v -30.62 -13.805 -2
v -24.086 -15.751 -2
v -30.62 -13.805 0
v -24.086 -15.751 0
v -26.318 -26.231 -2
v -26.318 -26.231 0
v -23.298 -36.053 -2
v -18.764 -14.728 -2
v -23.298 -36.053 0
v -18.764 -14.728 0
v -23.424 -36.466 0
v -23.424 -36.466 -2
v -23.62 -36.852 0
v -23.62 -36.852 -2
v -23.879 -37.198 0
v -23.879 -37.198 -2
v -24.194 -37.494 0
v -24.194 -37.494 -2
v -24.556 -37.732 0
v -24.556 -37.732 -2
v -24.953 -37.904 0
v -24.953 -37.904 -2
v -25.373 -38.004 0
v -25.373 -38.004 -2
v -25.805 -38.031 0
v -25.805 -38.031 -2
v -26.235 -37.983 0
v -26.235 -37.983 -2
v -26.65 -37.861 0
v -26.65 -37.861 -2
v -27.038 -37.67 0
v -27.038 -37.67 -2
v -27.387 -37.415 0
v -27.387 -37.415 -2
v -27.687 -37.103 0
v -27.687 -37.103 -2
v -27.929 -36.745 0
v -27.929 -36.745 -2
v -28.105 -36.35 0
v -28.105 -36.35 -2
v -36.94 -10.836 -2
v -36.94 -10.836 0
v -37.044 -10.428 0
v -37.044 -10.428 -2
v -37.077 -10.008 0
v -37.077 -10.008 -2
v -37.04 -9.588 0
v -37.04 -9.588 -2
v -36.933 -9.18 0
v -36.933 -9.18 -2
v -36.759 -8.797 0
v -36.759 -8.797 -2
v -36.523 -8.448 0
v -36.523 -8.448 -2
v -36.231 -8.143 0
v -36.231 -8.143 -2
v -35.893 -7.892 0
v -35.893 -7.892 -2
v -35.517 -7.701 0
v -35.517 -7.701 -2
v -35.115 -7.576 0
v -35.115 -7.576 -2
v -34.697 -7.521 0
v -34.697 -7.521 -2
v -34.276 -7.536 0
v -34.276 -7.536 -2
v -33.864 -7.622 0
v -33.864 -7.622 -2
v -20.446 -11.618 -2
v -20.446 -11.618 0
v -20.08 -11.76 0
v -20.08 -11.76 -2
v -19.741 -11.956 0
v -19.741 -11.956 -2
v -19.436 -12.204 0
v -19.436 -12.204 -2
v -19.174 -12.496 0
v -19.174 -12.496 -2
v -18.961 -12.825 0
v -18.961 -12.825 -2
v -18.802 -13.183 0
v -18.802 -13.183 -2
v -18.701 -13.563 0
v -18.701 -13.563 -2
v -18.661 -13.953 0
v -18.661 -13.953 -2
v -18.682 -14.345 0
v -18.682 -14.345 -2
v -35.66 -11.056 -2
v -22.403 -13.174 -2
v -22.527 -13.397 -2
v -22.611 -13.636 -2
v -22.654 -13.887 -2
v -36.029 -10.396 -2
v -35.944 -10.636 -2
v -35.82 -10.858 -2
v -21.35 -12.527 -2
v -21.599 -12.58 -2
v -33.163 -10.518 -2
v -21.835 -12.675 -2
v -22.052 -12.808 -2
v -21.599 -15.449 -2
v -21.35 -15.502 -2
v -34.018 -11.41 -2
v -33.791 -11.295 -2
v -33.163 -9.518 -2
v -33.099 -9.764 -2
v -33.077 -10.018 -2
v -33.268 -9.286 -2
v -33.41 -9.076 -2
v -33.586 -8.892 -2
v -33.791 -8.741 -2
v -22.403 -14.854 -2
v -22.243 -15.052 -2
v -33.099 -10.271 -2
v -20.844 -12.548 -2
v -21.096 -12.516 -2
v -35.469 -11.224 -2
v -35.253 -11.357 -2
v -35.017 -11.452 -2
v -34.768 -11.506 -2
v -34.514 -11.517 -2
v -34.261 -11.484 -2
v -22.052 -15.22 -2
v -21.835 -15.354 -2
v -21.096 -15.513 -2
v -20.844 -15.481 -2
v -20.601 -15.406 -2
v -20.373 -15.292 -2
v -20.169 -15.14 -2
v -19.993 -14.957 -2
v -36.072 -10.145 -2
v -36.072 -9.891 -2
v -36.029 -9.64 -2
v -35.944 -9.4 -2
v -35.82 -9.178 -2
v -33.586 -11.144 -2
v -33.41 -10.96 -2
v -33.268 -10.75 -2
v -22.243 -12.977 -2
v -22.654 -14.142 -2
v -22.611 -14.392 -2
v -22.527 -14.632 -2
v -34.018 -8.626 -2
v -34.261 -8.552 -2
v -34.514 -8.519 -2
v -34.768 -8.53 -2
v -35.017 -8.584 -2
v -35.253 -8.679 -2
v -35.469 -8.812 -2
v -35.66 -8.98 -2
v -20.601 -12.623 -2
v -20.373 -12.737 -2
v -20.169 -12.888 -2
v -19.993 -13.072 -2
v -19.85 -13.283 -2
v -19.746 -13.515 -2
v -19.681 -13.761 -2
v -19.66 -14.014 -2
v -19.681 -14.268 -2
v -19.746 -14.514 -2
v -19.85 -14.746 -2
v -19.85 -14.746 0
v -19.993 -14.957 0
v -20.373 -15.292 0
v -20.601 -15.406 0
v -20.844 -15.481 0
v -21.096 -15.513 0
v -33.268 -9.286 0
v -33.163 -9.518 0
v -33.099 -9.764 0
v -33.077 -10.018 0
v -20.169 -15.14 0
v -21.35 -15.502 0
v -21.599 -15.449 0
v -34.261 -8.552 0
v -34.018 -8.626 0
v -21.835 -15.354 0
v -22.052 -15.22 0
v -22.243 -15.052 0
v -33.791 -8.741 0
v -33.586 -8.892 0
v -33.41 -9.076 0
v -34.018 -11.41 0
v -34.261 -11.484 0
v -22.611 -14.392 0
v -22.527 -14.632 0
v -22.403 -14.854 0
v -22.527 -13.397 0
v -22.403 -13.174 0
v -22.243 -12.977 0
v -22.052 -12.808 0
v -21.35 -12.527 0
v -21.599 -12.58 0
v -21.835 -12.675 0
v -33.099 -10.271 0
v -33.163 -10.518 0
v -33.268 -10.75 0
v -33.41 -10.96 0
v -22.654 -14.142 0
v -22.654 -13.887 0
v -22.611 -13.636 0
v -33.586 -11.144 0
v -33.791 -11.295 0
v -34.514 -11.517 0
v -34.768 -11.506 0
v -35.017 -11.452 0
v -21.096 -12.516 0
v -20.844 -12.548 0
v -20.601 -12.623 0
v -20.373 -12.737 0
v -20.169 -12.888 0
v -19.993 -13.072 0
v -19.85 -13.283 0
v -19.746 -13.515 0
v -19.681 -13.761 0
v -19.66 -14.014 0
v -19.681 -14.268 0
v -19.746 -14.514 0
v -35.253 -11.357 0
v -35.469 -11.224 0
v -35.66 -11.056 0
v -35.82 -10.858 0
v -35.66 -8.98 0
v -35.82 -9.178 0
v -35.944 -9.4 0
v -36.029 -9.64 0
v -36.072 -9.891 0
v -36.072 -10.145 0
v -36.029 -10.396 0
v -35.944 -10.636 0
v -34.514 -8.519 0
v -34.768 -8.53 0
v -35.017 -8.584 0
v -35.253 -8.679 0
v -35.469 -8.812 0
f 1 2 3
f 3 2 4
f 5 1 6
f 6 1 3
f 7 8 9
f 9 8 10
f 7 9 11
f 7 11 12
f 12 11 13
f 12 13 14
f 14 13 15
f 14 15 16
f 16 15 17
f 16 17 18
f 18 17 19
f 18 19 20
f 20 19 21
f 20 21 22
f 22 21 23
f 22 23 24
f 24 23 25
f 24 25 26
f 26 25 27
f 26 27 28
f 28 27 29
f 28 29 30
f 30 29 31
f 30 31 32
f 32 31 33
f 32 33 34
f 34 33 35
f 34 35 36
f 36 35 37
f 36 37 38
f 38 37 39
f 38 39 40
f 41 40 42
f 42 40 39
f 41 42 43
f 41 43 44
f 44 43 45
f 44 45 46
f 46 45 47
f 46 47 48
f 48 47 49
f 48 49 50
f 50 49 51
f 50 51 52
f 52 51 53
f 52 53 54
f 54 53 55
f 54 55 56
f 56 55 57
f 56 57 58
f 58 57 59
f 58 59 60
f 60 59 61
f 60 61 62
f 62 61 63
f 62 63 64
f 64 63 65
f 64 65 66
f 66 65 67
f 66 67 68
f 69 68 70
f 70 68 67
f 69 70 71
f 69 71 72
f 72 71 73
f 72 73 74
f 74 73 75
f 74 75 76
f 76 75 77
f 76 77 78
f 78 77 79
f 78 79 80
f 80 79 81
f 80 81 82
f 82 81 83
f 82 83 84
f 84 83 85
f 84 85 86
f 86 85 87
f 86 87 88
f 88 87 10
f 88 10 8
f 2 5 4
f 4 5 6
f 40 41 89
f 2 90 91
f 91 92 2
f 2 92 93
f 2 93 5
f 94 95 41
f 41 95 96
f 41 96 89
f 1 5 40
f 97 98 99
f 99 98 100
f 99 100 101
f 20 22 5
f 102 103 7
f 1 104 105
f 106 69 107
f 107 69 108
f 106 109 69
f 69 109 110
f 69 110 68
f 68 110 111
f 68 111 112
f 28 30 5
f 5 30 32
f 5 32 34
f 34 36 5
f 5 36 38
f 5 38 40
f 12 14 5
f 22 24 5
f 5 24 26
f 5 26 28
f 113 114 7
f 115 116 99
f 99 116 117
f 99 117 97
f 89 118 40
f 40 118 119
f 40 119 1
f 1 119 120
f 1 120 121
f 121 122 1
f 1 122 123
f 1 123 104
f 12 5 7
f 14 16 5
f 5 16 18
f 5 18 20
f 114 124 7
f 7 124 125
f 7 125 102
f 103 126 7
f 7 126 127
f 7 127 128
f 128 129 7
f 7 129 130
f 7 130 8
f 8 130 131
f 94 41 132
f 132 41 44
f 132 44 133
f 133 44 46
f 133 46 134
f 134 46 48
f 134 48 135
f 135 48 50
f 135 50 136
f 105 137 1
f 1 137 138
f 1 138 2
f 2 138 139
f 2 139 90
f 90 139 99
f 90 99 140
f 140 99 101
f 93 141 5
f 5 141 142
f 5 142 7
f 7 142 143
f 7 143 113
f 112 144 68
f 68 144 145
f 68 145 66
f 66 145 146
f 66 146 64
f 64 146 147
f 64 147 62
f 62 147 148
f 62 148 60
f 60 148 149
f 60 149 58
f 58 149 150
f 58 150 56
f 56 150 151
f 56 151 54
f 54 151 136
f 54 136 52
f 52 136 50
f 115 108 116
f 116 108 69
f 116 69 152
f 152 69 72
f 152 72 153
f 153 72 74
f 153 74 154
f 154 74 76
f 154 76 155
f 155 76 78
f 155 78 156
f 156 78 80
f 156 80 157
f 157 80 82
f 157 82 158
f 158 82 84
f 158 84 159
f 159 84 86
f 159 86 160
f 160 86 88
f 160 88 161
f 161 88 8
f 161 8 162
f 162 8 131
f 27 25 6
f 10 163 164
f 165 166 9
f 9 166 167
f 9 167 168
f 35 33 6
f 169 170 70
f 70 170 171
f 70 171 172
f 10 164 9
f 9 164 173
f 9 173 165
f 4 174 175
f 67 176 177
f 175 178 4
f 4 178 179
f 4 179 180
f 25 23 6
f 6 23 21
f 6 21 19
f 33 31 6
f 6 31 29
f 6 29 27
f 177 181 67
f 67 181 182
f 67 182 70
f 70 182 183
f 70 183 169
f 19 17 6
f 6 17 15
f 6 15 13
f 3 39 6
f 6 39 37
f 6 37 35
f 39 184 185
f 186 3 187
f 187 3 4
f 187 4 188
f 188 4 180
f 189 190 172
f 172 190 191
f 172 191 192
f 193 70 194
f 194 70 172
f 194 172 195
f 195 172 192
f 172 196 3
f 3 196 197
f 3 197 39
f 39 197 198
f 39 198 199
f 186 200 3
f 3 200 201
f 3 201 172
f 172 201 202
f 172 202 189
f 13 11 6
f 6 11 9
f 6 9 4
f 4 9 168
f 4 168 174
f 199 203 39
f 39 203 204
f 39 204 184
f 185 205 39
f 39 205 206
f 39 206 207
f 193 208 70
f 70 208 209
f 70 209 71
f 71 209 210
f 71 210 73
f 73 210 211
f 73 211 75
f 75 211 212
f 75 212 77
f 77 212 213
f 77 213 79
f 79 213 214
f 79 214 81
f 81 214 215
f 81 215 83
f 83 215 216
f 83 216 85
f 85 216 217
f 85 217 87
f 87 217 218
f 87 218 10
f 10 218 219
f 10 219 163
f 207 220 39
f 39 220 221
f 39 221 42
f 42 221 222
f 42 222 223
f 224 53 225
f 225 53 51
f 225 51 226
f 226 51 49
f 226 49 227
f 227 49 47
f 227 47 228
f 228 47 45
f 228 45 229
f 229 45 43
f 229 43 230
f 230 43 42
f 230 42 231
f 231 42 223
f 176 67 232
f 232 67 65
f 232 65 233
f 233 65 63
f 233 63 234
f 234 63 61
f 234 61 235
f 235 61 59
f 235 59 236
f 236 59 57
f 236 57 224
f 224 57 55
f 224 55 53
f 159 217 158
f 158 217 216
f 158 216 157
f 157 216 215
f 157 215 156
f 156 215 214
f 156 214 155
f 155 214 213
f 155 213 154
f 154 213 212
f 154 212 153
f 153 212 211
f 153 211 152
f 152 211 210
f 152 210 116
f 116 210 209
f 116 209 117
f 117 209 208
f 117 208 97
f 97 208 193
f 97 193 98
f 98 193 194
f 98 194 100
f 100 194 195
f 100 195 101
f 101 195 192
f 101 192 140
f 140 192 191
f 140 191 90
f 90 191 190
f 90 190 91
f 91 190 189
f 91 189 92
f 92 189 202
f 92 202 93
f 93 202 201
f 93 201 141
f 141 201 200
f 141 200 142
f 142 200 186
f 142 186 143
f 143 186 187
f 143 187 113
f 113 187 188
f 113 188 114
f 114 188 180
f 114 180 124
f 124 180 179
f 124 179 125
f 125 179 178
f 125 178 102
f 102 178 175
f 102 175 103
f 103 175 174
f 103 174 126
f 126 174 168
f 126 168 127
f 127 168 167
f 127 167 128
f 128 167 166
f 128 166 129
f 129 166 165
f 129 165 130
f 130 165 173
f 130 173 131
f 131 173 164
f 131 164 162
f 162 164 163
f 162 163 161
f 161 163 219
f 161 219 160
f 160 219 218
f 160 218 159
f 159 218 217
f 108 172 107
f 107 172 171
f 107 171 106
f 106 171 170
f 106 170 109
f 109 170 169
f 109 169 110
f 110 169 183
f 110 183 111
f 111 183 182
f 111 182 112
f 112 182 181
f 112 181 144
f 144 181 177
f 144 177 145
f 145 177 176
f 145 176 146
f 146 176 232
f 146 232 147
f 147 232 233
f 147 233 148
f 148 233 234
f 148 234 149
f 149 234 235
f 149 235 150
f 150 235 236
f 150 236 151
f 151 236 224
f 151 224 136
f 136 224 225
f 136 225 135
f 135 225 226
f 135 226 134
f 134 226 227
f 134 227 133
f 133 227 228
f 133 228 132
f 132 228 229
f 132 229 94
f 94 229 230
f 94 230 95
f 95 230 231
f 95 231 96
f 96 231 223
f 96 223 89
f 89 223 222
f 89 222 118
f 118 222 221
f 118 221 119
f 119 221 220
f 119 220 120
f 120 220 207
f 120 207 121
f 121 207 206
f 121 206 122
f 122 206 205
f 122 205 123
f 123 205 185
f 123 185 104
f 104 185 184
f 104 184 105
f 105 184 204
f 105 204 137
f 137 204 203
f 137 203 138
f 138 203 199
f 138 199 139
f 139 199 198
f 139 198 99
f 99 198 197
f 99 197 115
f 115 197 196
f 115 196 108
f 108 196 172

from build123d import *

# Parameters (mm, degrees)
BOSS_EXTRU_1_DEPTH      = 2
ESQUISSE2_R             = 1.5
ENL_V_MAT_EXTRU_1_DEPTH = 2


with BuildPart() as part:
    # Esquisse1 → Boss.-Extru.1 (new body)
    with BuildSketch(Plane.XY):
        with BuildLine():
            Line((-36.939711753, -10.835982903), (-28.105322833, -36.349774711))
            ThreePointArc((-28.105322833, -36.349774711), (-25.588682721, -38.027012465), (-23.297783694, -36.052579486))
            Line((-23.297783694, -36.052579486), (-18.763886374, -14.728100955))
            ThreePointArc((-18.763886374, -14.728100955), (-18.961021654, -12.824866099), (-20.44620762, -11.61847152))
            Line((-20.44620762, -11.61847152), (-33.863669528, -7.622008589))
            ThreePointArc((-33.863669528, -7.622008589), (-36.383421268, -8.289397427), (-36.939711753, -10.835982903))
        make_face()
        Polygon((-24.085912758, -15.751447914), (-26.31791891, -26.23061998), (-30.620361937, -13.805127209), align=None, mode=Mode.SUBTRACT)
    extrude(amount=-BOSS_EXTRU_1_DEPTH)

    # Esquisse2 → Enlèv. mat.-Extru.1 (cut)
    with BuildSketch(Plane.XY):
        with Locations((-34.577323623, -10.017983929)):
            Circle(ESQUISSE2_R)
        with Locations((-21.159861715, -14.01444686)):
            Circle(ESQUISSE2_R)
    extrude(amount=-ENL_V_MAT_EXTRU_1_DEPTH, mode=Mode.SUBTRACT)


solid = part.part
